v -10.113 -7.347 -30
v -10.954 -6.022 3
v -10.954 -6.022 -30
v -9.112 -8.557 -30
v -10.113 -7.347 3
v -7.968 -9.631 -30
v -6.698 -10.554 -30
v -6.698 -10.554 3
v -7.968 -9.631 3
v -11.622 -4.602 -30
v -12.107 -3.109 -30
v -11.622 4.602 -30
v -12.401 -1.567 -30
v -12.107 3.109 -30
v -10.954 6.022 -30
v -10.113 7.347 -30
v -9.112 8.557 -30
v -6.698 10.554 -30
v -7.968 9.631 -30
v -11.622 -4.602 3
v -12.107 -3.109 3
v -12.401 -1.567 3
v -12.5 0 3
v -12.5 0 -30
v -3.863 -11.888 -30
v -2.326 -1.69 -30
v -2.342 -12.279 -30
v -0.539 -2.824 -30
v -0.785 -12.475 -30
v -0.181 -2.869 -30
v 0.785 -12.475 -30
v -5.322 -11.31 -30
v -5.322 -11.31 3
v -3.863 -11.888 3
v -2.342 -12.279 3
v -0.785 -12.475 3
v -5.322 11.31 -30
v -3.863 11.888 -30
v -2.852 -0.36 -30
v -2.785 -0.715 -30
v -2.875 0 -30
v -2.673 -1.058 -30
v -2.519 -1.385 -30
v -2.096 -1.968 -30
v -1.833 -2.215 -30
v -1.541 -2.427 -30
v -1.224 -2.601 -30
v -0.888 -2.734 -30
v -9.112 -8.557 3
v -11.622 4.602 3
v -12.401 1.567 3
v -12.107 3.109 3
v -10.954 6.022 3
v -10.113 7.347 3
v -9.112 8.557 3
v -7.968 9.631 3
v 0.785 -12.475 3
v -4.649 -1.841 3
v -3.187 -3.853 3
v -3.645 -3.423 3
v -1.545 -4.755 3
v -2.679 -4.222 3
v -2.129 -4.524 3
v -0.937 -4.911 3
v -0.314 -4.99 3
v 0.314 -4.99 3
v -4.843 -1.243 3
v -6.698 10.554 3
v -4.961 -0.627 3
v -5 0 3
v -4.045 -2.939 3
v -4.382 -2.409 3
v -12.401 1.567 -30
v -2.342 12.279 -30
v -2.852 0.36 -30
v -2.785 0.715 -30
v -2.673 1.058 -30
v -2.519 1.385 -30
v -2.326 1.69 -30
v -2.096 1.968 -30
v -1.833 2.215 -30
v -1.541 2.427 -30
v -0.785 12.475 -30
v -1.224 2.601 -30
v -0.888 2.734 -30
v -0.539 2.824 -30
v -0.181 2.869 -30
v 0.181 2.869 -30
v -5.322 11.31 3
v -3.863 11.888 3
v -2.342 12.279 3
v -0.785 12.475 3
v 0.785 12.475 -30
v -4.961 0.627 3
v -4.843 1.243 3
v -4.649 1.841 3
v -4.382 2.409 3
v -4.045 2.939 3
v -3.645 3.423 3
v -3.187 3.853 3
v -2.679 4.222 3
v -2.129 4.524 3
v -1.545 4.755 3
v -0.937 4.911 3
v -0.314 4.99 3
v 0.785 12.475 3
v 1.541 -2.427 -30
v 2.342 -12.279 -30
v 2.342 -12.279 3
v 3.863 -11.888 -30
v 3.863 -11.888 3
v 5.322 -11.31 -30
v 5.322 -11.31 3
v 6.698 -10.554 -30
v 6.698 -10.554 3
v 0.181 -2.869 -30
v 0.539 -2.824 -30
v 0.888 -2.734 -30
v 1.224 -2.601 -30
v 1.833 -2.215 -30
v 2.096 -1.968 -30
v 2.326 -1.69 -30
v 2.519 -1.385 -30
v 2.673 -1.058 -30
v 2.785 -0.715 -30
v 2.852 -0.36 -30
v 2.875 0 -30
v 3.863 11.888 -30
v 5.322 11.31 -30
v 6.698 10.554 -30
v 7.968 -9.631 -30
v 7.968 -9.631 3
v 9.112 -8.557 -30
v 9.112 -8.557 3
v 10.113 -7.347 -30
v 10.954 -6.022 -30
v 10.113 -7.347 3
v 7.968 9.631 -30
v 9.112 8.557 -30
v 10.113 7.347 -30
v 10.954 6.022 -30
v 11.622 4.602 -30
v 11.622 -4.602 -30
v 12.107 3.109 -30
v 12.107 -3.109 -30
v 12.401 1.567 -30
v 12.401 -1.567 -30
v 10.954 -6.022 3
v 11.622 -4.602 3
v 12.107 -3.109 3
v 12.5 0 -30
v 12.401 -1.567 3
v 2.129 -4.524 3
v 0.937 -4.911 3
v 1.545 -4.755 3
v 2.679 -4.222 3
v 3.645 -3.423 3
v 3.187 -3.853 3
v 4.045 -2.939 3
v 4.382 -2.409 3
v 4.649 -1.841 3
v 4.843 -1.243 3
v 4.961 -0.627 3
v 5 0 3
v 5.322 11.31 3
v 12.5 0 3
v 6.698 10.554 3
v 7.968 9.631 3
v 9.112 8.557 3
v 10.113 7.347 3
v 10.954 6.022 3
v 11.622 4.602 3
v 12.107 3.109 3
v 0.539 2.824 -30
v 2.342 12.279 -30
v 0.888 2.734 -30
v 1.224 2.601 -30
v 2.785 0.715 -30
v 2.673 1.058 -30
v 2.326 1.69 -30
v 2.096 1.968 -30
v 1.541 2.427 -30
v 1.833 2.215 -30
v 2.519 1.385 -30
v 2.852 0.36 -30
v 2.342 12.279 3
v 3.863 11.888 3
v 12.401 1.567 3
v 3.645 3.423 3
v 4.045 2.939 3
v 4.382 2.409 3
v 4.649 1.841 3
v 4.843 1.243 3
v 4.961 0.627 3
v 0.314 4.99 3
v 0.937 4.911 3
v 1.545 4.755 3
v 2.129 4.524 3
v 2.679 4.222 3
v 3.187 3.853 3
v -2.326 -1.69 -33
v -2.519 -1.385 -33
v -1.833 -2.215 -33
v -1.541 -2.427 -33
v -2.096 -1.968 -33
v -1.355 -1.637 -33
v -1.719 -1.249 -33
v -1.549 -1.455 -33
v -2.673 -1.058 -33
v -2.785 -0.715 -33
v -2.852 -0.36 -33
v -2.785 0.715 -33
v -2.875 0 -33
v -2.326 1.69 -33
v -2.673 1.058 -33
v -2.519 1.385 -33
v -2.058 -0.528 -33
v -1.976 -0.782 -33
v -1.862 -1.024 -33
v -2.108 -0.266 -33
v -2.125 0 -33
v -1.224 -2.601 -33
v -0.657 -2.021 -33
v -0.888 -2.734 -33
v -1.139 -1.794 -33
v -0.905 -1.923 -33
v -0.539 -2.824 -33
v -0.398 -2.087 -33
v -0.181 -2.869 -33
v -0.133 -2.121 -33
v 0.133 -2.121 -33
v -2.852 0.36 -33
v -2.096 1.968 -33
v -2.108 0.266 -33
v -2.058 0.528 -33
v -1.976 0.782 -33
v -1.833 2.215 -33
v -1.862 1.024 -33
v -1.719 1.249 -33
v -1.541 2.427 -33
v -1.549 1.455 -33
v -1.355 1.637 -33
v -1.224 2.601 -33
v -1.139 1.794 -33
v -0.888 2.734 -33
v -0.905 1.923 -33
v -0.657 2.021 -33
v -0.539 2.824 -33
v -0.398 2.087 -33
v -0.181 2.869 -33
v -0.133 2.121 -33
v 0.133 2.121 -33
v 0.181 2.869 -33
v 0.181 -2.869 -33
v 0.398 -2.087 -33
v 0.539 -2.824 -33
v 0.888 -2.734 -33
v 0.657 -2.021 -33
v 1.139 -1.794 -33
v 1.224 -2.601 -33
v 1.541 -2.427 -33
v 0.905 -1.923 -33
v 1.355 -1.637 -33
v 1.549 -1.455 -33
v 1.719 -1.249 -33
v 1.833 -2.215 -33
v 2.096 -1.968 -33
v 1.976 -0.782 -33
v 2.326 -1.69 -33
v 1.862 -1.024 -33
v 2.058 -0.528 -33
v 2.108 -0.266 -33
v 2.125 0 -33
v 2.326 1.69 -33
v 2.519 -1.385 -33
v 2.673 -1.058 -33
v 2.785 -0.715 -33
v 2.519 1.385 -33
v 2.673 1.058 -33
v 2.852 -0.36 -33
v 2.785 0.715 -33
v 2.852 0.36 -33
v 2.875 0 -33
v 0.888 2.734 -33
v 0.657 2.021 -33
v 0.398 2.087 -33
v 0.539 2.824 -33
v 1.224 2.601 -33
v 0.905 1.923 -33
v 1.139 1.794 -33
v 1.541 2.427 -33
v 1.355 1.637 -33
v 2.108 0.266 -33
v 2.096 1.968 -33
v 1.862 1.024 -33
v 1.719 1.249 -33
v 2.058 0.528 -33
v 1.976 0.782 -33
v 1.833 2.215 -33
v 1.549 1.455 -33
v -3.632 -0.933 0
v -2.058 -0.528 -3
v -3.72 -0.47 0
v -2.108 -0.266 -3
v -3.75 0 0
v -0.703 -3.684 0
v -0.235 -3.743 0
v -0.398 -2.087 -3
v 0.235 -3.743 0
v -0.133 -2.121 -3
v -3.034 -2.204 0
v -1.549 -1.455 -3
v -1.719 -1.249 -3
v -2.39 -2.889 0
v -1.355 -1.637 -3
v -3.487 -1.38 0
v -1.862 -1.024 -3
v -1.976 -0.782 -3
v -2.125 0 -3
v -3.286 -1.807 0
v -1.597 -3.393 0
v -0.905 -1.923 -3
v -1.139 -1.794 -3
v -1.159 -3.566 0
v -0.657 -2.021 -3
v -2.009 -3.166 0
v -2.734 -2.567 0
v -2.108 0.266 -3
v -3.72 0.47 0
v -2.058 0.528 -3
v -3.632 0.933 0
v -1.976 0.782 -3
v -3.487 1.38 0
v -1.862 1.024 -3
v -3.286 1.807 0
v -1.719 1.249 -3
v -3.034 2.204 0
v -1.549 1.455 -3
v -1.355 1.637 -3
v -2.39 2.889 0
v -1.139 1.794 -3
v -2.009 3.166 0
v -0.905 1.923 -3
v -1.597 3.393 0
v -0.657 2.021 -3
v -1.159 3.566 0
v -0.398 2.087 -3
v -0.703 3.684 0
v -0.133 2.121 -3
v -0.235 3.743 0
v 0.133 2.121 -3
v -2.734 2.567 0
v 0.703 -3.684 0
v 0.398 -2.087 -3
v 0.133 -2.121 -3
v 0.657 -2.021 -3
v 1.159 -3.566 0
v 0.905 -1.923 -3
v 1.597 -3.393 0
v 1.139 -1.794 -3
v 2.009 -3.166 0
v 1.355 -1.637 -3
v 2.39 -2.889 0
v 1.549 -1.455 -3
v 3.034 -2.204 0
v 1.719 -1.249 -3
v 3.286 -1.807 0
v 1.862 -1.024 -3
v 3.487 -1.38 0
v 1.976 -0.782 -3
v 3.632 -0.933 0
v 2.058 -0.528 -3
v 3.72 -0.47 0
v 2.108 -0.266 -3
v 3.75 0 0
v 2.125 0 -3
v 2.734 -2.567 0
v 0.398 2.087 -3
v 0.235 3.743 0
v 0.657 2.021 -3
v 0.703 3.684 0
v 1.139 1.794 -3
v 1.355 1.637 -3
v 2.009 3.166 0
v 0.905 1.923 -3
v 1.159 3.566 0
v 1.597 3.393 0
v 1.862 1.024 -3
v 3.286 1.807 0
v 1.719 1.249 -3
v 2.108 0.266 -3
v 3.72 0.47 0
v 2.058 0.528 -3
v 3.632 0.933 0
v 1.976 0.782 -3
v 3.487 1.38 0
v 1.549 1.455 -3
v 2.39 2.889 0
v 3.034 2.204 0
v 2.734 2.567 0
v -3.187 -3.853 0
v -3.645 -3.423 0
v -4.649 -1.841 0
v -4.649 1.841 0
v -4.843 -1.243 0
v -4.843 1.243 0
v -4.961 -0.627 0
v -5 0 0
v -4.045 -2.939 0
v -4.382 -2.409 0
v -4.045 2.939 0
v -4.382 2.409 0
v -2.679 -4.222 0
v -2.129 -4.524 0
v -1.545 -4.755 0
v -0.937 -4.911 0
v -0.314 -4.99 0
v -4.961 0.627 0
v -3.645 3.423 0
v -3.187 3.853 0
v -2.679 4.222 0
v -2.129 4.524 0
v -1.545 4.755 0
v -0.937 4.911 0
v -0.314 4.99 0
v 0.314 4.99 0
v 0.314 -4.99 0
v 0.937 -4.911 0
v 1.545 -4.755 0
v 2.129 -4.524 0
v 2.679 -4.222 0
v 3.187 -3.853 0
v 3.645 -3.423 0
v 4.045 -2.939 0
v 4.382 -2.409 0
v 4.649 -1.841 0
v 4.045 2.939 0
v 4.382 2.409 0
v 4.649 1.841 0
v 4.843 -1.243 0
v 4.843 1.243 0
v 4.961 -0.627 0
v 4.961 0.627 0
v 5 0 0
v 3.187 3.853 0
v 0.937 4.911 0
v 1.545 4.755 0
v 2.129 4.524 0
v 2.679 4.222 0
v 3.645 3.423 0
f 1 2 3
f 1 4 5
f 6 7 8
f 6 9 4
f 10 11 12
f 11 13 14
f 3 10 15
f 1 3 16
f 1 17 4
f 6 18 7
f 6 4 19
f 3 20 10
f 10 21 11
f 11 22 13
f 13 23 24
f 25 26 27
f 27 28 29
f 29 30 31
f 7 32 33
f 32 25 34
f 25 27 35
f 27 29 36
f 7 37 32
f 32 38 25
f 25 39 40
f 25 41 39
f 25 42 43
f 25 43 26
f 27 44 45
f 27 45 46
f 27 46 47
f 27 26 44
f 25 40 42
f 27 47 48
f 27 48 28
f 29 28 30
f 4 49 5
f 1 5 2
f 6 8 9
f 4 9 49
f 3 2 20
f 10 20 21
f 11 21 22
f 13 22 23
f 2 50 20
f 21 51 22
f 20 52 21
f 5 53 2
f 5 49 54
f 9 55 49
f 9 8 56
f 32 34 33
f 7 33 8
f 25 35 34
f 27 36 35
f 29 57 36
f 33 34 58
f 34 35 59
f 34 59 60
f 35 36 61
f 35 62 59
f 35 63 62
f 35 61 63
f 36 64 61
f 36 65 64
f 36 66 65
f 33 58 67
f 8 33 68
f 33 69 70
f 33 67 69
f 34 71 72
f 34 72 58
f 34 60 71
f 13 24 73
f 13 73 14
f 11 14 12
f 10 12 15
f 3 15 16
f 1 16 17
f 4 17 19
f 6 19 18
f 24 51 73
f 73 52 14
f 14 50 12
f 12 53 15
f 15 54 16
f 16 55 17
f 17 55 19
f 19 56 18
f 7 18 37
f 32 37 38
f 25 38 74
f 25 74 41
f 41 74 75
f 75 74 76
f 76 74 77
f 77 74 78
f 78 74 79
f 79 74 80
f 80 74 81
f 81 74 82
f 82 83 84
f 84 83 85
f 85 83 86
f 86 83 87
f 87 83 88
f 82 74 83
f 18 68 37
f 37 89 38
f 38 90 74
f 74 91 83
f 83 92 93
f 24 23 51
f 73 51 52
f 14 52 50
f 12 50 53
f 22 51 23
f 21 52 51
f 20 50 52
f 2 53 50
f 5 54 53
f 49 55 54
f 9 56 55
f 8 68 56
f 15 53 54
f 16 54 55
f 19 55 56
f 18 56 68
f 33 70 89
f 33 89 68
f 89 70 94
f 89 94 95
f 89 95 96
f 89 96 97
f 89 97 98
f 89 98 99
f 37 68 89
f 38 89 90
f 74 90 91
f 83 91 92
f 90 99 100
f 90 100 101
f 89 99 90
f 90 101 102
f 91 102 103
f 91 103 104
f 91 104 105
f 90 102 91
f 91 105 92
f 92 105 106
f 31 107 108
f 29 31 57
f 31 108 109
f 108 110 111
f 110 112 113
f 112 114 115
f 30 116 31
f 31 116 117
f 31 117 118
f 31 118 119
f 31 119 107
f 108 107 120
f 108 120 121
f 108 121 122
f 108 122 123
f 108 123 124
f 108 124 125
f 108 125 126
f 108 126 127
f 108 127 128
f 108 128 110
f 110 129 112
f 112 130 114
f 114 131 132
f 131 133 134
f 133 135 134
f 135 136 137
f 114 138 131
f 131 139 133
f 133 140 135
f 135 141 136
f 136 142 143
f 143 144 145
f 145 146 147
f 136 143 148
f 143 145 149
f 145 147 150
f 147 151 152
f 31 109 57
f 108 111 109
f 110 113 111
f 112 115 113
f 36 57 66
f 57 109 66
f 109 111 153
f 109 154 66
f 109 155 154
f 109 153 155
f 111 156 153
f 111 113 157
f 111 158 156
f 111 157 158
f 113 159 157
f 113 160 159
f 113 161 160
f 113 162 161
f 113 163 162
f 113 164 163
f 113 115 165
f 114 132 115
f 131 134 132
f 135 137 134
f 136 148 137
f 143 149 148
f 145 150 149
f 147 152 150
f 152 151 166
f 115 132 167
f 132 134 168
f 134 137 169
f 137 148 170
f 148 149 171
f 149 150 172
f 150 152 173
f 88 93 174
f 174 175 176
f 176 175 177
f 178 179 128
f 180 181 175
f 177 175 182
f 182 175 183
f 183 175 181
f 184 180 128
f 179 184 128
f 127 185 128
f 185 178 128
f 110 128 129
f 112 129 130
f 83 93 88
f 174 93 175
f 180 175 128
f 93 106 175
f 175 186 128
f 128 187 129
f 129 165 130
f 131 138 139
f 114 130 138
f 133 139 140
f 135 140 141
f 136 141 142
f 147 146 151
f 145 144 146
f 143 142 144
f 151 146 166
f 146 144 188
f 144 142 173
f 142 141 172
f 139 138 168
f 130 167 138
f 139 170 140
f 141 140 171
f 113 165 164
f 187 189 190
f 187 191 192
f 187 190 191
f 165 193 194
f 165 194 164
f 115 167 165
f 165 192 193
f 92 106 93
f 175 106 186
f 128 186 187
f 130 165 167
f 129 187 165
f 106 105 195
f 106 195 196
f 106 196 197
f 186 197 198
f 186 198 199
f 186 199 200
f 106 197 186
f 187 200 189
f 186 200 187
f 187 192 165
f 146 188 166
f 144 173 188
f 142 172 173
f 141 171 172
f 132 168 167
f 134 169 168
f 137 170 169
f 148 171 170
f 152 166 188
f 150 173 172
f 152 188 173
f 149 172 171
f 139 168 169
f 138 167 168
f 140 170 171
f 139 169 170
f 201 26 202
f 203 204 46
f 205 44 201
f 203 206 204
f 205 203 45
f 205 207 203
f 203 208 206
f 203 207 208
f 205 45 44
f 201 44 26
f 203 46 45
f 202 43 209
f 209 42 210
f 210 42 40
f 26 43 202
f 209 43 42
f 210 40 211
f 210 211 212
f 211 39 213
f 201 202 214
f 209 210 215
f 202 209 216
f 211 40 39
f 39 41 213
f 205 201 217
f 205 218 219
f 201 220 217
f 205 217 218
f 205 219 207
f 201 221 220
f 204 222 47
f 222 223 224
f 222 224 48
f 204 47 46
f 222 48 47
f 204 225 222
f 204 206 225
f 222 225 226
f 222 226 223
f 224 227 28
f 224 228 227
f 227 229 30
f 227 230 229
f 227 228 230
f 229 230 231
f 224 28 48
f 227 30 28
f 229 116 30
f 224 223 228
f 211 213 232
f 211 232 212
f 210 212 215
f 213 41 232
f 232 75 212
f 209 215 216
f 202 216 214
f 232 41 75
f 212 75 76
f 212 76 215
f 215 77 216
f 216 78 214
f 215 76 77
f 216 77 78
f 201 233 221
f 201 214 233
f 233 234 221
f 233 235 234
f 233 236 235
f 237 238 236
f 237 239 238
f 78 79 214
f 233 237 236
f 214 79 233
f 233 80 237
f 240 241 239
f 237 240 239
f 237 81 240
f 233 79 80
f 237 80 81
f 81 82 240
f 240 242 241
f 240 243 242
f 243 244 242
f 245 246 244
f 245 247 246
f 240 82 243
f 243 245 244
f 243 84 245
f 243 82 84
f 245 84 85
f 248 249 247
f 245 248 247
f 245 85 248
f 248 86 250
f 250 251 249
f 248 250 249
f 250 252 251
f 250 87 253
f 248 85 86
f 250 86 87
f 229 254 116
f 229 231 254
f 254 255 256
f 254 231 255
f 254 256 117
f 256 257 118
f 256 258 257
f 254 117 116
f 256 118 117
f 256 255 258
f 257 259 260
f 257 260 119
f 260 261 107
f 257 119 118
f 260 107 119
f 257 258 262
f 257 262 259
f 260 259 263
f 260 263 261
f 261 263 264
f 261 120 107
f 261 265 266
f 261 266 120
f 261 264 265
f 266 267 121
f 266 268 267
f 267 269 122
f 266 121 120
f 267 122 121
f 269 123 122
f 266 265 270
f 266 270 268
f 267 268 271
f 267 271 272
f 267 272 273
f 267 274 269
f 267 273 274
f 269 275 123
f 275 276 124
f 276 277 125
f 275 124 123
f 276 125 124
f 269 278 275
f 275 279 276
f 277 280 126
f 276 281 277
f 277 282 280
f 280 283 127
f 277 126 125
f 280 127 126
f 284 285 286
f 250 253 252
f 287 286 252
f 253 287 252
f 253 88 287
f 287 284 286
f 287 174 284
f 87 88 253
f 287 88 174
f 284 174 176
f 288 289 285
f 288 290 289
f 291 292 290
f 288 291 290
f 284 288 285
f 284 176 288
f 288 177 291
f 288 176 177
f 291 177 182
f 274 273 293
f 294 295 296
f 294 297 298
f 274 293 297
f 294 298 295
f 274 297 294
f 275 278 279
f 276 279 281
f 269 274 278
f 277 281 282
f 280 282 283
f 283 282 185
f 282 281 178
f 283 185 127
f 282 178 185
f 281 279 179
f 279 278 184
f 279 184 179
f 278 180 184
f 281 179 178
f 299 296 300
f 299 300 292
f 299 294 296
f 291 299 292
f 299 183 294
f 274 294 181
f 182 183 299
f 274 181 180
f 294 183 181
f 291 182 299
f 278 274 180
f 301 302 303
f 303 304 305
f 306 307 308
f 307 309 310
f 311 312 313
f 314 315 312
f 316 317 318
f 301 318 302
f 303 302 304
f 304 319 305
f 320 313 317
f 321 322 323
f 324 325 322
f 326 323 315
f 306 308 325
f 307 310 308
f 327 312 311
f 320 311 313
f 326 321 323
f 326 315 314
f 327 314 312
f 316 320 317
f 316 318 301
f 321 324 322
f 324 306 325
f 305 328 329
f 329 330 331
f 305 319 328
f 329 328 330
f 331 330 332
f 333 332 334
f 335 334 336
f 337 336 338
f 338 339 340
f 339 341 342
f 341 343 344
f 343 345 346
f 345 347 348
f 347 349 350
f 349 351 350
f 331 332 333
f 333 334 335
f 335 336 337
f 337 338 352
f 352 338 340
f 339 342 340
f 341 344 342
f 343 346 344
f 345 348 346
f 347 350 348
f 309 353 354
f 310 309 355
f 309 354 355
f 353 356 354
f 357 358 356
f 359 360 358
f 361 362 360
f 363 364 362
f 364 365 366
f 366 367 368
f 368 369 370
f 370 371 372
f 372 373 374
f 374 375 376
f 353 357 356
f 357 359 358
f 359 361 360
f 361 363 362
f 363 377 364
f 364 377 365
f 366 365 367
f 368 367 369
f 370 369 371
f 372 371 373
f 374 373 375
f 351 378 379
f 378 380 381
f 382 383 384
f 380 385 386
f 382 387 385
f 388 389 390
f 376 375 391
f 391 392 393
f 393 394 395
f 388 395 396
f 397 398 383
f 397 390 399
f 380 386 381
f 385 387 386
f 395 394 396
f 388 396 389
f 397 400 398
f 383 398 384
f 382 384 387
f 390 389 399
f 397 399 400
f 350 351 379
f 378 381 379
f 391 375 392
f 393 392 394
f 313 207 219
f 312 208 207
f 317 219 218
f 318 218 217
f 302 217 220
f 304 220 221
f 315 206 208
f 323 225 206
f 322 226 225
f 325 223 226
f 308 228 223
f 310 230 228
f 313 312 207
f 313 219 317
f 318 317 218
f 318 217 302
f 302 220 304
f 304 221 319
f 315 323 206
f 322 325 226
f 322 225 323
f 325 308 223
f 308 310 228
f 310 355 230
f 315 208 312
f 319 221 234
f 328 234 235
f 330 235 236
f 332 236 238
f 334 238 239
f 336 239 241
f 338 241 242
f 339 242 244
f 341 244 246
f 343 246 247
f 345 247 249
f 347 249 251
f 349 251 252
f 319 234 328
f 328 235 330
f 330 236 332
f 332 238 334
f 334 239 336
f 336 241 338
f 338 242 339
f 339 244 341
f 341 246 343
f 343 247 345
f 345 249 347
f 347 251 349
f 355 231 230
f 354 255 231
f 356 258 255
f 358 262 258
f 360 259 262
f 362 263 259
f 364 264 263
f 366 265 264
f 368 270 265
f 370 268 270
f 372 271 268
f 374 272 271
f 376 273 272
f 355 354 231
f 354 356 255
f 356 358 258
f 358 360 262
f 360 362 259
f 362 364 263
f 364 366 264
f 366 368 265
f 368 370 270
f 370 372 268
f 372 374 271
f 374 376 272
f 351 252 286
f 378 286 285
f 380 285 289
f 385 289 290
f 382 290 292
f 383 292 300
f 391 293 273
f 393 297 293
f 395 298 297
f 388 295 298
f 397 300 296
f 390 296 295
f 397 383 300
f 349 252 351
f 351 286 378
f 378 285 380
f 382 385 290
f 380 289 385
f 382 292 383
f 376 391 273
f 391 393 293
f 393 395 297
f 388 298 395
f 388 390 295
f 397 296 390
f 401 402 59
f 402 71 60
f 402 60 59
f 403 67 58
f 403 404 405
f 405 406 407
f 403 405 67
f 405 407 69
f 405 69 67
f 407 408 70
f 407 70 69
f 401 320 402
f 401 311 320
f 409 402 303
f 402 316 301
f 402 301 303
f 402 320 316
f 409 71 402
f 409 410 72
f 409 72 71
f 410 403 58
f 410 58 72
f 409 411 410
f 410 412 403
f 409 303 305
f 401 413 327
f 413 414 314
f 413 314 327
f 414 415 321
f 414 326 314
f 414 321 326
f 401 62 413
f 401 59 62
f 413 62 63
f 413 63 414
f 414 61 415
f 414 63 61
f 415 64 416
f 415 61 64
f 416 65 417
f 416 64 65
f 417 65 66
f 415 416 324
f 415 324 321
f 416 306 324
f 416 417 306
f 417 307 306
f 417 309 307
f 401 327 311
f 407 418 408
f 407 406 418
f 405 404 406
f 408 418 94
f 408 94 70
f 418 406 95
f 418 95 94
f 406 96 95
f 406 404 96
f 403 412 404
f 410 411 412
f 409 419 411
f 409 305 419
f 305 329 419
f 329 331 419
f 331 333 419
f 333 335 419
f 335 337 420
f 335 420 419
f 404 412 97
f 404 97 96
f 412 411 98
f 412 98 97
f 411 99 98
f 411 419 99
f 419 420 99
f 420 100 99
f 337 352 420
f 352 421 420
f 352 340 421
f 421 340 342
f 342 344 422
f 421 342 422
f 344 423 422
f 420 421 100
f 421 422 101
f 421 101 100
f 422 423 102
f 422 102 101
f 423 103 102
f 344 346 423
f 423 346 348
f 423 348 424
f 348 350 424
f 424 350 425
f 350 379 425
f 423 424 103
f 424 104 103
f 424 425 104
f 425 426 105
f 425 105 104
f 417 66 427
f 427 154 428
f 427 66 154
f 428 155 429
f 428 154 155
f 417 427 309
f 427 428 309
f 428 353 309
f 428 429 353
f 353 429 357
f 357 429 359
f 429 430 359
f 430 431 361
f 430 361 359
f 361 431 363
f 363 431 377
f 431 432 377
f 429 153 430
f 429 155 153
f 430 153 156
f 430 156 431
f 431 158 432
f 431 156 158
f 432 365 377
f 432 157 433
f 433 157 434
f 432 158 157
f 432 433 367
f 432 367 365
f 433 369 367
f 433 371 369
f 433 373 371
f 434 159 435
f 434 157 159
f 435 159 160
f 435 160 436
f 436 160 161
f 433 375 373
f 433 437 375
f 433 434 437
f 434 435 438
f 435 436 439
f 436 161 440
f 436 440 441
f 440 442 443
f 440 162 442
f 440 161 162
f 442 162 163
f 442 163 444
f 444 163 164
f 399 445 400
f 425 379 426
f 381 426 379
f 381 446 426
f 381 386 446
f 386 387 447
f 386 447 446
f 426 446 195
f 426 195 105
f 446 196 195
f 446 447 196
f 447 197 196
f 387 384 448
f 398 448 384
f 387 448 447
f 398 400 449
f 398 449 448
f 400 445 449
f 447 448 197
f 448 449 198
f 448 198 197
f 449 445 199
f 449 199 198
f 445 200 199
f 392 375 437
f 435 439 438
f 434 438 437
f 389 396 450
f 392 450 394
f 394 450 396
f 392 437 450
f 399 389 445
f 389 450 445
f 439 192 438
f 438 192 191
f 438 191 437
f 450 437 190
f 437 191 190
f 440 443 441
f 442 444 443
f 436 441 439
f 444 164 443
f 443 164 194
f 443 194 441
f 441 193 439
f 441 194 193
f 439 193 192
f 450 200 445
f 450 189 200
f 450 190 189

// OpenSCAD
$fn = 50;


difference() {
	union() {
		translate(v = [0, 0, -30.0000000000]) {
			cylinder(h = 33, r = 12.5000000000);
		}
		#translate(v = [0, 0, -33.0000000000]) {
			cylinder(h = 33, r = 2.8750000000);
		}
	}
	union() {
		translate(v = [0, 0, 0]) {
			rotate(a = [0, 0, 0]) {
				difference() {
					union() {
						translate(v = [0, 0, -33.0000000000]) {
							cylinder(h = 33, r = 2.0000000000);
						}
						translate(v = [0, 0, -3]) {
							cylinder(h = 3, r1 = 2.1250000000, r2 = 3.7500000000);
						}
						translate(v = [0, 0, -33.0000000000]) {
							cylinder(h = 33, r = 2.1250000000);
						}
						translate(v = [0, 0, -33.0000000000]) {
							cylinder(h = 33, r = 2.0000000000);
						}
					}
					union();
				}
			}
		}
		#cylinder(h = 3, r = 5.0000000000);
	}
}
